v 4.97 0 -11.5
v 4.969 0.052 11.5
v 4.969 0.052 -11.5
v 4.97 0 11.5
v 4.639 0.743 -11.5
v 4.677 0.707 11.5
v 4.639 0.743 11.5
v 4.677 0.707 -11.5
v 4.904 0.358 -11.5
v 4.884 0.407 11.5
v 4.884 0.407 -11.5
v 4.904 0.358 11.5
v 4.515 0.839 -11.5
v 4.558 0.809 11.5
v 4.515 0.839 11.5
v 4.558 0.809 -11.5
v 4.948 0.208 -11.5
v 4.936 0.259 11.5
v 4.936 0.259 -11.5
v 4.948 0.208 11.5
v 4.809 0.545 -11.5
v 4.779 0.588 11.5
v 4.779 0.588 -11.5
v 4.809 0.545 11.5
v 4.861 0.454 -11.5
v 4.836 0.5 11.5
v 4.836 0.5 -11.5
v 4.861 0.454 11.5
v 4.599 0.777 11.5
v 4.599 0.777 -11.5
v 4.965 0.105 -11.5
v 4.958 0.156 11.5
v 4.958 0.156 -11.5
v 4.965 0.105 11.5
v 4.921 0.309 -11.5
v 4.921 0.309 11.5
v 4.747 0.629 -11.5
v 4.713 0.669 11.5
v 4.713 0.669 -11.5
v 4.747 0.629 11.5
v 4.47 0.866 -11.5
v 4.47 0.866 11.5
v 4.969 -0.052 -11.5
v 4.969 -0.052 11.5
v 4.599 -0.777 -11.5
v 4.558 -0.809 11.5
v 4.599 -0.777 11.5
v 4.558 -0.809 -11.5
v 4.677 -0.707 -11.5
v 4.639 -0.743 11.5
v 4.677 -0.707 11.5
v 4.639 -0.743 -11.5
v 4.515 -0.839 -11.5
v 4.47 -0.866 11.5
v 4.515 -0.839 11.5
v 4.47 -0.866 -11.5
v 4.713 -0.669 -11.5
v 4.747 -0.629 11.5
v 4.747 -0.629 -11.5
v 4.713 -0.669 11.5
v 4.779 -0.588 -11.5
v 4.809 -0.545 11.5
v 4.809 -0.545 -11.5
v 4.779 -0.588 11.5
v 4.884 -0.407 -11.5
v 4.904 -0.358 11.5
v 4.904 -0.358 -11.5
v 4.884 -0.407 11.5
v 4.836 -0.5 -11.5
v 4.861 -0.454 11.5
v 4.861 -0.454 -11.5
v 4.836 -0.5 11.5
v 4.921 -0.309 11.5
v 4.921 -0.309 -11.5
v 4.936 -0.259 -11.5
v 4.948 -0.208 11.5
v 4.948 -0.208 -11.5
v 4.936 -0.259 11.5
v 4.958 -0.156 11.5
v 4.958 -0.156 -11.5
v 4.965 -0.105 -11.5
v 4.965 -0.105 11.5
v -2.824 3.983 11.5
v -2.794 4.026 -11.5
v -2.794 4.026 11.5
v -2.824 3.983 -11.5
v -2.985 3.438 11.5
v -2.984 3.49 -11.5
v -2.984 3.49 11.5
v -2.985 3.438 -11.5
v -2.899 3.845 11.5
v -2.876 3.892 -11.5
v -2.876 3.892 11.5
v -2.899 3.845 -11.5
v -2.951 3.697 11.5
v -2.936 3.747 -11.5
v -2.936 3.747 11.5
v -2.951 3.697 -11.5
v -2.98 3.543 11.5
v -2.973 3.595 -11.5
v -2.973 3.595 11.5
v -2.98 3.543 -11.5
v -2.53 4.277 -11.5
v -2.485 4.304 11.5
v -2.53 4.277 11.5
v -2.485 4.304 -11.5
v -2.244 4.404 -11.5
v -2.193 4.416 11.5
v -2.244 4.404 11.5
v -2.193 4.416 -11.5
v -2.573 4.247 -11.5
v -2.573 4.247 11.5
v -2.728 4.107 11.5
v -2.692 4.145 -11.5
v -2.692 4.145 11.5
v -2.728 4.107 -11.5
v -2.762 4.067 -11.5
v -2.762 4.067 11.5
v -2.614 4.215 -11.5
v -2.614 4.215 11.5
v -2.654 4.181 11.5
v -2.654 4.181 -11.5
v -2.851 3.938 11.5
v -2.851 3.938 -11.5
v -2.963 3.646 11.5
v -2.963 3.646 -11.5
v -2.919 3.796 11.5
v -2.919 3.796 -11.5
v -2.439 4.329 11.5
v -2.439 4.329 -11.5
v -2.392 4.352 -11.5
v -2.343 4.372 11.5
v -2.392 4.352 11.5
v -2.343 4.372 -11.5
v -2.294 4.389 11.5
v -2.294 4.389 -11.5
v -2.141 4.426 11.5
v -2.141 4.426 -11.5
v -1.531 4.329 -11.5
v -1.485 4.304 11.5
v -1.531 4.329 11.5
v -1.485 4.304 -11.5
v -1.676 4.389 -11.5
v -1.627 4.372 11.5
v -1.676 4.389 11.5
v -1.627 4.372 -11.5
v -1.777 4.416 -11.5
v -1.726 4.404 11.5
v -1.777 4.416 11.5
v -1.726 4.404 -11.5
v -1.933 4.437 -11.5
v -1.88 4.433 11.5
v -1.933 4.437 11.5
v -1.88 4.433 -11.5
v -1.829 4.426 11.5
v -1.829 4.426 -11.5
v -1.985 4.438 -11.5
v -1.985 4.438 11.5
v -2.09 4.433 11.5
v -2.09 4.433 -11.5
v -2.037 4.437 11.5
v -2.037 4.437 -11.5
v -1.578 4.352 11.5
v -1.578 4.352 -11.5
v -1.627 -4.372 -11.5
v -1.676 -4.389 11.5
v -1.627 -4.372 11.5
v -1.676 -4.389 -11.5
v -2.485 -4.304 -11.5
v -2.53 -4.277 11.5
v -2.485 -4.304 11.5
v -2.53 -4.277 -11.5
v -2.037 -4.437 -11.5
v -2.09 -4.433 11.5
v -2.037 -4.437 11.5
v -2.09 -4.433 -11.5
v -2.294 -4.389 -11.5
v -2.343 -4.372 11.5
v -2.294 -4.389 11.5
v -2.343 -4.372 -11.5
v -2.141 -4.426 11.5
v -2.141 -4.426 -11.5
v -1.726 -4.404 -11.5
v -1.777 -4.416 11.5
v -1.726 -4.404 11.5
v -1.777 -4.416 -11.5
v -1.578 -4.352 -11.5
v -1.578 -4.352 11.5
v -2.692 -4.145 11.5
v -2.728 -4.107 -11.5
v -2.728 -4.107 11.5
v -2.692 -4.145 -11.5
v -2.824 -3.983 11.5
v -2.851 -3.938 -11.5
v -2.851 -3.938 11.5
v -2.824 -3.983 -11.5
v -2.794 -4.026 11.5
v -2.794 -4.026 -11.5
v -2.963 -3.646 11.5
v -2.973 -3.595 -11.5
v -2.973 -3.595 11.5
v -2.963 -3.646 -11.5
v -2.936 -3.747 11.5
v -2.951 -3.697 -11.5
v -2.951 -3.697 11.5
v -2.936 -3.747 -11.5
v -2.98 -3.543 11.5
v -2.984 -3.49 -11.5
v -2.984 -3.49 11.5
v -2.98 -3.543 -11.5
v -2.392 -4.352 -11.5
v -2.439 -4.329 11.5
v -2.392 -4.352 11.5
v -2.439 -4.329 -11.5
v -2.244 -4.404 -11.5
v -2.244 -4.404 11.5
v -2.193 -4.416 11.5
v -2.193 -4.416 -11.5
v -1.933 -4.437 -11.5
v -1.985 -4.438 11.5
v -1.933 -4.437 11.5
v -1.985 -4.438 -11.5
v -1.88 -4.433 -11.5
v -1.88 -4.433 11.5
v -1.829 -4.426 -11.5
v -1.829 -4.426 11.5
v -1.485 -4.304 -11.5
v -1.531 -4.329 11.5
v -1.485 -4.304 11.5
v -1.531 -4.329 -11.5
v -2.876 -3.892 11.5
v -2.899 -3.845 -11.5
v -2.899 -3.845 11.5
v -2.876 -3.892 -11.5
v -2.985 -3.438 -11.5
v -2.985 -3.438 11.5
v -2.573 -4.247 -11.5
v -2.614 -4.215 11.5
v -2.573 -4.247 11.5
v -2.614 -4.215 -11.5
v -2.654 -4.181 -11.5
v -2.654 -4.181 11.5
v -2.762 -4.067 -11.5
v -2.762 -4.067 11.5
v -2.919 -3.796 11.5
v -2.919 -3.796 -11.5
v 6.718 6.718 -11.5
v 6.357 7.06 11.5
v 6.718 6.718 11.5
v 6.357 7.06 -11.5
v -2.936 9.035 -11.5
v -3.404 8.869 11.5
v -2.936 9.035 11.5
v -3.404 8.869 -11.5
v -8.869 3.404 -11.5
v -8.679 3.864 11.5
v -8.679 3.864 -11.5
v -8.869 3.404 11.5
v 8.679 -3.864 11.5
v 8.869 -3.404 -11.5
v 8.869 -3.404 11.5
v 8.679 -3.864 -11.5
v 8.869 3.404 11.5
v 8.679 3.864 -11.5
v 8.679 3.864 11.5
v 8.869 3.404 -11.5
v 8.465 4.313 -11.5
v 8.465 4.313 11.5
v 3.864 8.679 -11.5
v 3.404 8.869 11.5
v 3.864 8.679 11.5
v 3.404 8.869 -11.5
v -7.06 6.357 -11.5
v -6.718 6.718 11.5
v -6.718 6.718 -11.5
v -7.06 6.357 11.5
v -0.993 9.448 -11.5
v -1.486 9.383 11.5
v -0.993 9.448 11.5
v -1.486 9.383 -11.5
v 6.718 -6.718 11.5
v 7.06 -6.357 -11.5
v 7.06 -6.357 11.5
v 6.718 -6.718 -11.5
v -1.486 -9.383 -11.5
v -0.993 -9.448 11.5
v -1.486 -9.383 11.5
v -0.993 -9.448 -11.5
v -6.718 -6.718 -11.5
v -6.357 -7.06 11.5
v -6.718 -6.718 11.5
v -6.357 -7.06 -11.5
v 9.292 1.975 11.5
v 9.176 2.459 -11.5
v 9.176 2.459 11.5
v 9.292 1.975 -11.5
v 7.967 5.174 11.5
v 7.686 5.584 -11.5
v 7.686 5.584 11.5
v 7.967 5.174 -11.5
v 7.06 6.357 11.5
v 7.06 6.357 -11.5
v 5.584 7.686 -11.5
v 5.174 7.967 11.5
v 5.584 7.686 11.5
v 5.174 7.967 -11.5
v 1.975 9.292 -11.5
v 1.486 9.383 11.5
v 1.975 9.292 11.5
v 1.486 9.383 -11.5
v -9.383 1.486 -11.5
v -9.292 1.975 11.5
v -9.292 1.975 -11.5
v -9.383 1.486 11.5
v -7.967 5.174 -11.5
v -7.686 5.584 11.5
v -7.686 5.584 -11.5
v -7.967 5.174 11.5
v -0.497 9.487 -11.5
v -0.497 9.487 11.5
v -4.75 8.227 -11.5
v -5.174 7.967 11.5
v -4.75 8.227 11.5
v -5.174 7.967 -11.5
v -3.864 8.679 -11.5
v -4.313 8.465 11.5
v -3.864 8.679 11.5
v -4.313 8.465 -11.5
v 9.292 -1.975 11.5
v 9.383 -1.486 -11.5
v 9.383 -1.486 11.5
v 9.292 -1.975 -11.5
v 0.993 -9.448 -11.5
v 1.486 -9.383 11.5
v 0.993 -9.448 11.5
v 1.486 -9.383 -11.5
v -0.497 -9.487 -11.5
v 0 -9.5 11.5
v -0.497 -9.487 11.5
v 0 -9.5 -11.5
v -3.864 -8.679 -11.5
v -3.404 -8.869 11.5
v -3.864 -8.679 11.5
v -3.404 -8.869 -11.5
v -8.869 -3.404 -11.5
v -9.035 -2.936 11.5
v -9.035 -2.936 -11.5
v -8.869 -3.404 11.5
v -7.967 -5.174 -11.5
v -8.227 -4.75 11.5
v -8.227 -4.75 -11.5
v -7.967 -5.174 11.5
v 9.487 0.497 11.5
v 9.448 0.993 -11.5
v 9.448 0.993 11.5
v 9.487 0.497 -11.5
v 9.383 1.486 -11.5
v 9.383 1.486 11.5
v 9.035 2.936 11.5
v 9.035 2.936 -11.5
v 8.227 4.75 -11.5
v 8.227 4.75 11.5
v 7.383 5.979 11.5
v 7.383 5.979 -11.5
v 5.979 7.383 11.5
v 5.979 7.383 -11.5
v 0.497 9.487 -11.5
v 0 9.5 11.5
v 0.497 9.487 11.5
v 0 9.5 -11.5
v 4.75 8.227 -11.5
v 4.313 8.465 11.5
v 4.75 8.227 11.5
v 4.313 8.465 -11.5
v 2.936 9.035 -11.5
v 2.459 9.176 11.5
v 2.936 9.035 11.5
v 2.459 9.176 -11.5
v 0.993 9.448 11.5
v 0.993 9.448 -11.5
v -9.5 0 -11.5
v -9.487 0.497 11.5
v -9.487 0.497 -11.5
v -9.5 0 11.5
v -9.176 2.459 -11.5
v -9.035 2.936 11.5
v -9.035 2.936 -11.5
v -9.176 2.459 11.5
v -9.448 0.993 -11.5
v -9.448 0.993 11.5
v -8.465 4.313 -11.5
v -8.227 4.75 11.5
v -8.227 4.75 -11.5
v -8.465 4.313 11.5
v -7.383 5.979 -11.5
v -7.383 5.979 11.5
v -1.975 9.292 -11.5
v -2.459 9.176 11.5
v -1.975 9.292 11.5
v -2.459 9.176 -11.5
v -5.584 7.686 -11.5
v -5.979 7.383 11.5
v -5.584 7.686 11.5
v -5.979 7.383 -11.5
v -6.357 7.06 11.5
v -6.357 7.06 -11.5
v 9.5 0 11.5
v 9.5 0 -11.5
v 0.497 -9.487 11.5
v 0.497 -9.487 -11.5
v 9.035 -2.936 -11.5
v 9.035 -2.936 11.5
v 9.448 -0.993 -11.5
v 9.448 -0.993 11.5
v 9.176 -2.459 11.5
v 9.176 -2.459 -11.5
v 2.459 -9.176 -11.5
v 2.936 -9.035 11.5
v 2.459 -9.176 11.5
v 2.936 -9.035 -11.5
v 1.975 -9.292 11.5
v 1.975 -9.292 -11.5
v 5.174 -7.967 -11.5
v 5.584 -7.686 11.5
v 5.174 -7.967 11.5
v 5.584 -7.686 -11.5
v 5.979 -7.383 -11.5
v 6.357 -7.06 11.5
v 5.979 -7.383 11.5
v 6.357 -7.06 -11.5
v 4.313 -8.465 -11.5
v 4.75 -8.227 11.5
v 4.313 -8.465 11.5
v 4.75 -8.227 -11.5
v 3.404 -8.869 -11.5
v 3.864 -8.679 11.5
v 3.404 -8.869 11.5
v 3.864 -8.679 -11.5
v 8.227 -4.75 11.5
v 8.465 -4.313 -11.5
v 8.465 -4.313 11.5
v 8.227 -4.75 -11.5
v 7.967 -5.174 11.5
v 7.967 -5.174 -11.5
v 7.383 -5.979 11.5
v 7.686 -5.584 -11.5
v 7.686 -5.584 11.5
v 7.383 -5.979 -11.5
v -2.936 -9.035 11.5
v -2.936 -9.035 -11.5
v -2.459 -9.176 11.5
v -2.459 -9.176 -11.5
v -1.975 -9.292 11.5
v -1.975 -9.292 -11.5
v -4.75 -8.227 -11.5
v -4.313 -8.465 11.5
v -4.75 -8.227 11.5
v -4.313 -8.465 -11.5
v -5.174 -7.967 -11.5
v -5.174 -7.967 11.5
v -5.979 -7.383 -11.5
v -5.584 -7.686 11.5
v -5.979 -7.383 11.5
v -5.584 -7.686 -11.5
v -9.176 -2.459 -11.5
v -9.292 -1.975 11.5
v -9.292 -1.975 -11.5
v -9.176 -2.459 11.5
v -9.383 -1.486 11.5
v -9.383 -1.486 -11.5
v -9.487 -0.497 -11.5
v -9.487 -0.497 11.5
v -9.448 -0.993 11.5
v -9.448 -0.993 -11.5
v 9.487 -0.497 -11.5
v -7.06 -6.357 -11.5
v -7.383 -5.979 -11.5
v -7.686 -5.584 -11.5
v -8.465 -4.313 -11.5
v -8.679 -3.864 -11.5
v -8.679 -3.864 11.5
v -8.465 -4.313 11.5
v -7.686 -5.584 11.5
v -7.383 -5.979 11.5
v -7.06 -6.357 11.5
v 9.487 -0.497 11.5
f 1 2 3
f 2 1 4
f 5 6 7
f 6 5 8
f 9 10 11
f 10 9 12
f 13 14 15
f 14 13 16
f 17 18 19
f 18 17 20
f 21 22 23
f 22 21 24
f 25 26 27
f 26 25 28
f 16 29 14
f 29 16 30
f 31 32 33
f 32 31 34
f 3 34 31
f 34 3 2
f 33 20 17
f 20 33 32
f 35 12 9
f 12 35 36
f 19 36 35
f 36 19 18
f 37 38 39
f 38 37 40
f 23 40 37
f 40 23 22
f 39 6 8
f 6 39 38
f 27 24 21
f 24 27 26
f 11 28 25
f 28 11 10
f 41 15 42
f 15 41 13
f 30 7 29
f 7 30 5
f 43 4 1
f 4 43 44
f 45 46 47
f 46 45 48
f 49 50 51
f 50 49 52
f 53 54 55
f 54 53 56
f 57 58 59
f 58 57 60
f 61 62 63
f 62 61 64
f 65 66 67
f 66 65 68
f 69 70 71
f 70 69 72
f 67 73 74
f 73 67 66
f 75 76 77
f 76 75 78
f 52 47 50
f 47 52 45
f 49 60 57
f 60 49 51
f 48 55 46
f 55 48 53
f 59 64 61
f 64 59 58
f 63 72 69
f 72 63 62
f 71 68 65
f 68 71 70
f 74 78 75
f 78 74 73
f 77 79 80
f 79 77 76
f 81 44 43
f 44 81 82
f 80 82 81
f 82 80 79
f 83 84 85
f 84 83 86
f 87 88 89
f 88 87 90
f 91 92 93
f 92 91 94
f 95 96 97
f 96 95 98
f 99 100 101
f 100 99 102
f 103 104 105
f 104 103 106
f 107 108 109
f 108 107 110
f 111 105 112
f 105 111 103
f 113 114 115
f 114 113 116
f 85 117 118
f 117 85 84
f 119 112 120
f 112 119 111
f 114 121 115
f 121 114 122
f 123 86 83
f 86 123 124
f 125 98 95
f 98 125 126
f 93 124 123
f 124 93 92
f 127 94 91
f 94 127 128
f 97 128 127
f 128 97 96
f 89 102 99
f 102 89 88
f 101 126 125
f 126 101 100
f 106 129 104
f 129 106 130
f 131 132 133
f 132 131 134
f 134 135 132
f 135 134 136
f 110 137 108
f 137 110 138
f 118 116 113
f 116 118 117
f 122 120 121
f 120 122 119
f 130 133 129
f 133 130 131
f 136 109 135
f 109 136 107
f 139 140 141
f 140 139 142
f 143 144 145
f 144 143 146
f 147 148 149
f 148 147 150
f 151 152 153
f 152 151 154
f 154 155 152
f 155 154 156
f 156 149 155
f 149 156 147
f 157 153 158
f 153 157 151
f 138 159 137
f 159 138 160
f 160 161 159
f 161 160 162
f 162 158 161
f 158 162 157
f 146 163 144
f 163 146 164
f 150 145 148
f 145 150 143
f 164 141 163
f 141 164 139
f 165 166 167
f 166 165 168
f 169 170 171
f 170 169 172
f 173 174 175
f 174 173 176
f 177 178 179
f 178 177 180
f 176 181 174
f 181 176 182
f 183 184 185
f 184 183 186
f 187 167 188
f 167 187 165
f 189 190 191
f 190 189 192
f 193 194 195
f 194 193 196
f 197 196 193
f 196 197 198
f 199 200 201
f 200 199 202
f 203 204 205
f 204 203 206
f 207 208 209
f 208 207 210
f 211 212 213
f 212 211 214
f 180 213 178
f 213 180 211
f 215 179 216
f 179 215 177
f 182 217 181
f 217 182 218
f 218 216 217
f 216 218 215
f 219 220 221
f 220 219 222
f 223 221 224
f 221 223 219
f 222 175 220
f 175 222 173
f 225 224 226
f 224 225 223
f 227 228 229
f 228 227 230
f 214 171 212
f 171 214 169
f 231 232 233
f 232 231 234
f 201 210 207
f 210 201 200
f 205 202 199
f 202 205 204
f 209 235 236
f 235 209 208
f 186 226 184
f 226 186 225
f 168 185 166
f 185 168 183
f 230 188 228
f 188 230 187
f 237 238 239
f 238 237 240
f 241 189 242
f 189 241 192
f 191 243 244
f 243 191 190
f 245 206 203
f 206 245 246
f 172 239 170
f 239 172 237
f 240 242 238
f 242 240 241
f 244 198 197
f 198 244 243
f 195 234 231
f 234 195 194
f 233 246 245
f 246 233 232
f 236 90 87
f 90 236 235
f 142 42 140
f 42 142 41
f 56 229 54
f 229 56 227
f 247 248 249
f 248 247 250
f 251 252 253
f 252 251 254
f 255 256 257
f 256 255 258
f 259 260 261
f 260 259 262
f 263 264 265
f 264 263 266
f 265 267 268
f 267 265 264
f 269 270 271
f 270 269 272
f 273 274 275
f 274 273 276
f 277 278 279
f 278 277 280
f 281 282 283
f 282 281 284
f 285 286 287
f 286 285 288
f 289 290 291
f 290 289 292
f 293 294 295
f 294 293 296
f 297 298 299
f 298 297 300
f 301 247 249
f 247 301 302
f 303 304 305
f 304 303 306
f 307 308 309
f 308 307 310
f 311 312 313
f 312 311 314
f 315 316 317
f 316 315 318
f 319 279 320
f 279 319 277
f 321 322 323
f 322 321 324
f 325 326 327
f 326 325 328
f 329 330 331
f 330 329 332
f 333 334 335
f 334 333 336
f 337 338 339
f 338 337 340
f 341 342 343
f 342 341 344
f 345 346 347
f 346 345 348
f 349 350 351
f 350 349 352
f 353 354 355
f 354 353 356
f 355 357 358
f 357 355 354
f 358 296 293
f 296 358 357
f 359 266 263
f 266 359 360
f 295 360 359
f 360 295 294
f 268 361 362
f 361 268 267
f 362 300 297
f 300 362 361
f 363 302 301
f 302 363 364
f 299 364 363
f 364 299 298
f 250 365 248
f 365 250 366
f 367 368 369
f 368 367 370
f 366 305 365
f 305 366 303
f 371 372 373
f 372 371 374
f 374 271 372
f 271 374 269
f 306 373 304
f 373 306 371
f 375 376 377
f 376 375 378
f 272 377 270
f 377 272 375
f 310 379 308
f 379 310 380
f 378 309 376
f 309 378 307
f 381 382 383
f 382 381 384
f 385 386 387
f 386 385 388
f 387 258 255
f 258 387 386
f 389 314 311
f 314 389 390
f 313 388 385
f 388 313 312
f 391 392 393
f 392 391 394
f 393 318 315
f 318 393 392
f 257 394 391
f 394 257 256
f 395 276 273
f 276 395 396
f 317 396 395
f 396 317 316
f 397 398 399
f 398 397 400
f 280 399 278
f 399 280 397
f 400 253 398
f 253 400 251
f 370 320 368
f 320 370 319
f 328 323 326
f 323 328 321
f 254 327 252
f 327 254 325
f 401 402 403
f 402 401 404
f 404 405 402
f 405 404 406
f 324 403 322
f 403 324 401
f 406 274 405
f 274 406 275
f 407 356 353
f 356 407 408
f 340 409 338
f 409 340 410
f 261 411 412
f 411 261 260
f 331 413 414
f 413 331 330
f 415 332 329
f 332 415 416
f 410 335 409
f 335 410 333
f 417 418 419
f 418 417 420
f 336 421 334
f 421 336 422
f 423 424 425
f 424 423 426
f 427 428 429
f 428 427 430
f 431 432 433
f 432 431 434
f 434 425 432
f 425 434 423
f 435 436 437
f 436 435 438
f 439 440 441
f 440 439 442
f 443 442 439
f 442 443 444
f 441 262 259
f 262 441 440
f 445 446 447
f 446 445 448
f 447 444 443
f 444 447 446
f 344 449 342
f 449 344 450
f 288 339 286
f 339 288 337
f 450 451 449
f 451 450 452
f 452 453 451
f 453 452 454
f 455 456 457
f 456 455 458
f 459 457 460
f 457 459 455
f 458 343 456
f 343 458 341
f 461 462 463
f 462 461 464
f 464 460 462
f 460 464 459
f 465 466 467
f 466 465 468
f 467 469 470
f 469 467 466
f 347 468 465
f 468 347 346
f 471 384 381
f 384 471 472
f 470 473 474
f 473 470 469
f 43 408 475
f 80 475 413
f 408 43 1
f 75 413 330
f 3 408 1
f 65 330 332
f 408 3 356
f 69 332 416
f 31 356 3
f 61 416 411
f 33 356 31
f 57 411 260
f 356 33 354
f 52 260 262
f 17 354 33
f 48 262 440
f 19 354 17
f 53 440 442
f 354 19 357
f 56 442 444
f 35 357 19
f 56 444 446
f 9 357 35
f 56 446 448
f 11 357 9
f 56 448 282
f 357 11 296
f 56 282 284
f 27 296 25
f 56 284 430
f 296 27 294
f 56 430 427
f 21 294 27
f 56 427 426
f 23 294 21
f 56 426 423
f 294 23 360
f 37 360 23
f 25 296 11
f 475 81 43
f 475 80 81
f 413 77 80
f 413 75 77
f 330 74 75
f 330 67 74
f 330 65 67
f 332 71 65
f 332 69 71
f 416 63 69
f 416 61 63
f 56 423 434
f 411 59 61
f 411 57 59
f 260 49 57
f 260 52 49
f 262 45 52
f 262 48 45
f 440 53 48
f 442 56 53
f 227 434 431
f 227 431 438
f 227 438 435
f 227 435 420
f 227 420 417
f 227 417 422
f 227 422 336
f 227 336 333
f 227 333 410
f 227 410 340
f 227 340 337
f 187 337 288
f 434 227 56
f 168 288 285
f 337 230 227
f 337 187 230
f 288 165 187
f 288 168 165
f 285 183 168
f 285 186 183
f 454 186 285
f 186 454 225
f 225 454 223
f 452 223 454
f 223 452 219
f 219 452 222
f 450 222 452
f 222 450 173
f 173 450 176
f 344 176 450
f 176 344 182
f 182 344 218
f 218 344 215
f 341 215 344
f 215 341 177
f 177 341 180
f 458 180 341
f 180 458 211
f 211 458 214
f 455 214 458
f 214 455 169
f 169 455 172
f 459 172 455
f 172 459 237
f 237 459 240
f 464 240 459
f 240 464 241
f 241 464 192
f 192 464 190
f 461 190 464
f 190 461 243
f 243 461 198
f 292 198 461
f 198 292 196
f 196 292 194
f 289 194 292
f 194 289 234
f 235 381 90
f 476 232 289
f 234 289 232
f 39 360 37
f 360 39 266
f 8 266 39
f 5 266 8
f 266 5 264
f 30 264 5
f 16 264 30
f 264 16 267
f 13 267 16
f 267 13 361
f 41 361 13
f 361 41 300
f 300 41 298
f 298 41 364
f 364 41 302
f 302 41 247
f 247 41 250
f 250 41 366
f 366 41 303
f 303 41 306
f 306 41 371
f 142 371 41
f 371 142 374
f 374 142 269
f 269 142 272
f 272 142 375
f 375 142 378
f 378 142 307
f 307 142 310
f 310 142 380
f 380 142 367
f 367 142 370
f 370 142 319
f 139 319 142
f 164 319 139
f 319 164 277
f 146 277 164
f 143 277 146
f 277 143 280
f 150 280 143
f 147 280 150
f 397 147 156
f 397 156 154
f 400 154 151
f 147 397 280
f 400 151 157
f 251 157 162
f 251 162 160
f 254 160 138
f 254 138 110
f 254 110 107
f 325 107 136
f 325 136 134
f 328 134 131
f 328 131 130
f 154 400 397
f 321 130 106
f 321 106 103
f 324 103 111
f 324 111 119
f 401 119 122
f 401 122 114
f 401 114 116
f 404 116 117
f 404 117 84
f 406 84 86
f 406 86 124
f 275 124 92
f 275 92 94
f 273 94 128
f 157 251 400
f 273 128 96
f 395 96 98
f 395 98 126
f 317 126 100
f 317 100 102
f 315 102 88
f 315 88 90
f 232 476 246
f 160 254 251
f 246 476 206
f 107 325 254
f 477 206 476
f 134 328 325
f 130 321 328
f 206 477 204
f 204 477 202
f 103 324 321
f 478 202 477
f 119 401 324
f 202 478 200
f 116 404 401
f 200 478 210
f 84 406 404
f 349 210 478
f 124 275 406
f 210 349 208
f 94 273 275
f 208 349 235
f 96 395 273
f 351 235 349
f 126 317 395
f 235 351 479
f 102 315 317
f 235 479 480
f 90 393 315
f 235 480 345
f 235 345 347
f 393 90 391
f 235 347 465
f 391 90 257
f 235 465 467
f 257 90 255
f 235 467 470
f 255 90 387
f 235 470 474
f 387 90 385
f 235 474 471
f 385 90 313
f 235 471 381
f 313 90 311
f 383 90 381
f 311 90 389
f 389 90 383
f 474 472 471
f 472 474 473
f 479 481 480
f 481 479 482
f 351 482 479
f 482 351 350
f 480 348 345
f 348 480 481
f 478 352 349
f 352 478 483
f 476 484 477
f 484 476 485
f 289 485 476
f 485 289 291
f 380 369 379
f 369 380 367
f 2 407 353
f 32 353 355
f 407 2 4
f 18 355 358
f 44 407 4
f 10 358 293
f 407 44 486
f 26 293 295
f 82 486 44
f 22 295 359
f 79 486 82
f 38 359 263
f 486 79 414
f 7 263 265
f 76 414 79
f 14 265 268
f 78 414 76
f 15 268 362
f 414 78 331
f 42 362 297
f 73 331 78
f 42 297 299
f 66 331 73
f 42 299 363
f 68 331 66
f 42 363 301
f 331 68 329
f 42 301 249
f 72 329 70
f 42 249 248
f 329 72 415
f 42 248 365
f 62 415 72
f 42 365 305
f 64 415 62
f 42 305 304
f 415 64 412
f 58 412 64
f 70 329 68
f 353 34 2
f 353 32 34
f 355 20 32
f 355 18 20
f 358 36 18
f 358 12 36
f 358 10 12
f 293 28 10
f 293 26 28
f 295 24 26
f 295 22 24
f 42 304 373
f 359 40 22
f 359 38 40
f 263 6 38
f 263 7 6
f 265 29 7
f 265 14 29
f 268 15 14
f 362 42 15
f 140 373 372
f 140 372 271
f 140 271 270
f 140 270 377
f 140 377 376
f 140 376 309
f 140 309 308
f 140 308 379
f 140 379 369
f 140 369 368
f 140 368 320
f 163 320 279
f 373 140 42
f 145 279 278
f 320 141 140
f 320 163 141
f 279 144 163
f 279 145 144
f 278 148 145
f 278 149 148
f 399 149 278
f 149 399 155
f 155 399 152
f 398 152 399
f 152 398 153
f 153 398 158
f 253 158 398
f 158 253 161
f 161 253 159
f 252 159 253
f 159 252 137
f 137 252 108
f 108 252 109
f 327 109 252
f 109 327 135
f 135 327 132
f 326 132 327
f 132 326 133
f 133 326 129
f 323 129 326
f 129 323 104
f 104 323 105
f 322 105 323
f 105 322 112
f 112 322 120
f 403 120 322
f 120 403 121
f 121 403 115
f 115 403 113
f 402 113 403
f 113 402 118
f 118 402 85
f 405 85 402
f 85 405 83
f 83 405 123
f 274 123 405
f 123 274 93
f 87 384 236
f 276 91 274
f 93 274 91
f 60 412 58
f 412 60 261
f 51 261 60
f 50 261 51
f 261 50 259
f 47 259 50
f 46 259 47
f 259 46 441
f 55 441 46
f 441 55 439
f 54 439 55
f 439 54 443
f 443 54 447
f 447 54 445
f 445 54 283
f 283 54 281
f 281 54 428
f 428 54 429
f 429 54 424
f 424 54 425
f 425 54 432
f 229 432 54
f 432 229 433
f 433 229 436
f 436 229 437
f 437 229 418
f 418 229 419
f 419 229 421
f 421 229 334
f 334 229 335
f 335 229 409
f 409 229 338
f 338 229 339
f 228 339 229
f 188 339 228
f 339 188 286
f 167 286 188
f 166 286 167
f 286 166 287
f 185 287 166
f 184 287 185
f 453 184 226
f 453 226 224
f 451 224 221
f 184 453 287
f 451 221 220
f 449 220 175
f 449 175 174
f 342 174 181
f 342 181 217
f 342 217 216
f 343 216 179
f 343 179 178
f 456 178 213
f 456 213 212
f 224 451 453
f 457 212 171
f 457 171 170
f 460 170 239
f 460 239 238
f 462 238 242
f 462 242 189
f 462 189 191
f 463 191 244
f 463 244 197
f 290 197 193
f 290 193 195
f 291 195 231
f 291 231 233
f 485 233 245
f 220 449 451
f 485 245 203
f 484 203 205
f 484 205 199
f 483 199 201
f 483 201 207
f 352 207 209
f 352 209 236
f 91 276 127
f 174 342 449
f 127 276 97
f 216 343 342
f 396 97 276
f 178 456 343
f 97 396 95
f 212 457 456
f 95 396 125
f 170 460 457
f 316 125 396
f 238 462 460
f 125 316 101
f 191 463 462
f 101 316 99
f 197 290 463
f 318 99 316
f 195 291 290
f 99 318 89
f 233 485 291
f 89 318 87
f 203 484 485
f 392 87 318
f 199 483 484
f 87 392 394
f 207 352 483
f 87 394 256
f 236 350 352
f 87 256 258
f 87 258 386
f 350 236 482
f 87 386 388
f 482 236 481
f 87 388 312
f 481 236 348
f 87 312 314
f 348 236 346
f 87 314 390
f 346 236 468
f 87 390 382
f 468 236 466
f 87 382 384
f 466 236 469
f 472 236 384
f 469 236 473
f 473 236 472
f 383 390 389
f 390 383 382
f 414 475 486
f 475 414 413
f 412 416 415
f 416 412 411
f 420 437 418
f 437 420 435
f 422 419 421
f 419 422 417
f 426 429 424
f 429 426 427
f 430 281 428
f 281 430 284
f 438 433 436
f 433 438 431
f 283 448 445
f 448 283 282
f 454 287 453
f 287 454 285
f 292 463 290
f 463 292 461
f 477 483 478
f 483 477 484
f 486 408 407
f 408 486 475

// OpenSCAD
/**
 * Rubber Stopper for JK Projector Reels
 *
 * To be used as a negative in a 2-part mold to cast stoppers
 * in rubber or silicone.
 **/
 
 time=0;
 
 module rubber_stopper_jk_projector () {
    OD = 19;
    ID = 6.57;
    H = 23;
    TRIANGLE = 9.44 +2.5;
    ROUND_D = 2;

    $fn = 120;

    difference () {
        //outer cylinder
        cylinder(r = OD / 2, h = H, center = true);
        //rounded corners
        for (i = [0 : 2]) {
            rotate([0, 0, 120 * i]) {
                translate ([(TRIANGLE / 2) - (ROUND_D), 0, 0]) {
                    cylinder(r = ROUND_D / 2, h = H + 1, center = true);
                }
            }
        }
        //triangle 
        difference () {
            cylinder(r = TRIANGLE / 2, h = H + 1, center = true, $fn = 3);
            for (i = [0 : 2]) {
                rotate([0, 0, 120 * i]) {
                    translate ([(TRIANGLE / 2) - .5, 0, 0]) {
                        cube([ROUND_D, ROUND_D, H + 1], center = true);
                    }
                }
            }
        }
    } 
 }
 
 //reference
 //cylinder(r = 6.57 / 2, h = 50, center = true, $fn=60);
 rotate([0, 0, time]) rubber_stopper_jk_projector();
